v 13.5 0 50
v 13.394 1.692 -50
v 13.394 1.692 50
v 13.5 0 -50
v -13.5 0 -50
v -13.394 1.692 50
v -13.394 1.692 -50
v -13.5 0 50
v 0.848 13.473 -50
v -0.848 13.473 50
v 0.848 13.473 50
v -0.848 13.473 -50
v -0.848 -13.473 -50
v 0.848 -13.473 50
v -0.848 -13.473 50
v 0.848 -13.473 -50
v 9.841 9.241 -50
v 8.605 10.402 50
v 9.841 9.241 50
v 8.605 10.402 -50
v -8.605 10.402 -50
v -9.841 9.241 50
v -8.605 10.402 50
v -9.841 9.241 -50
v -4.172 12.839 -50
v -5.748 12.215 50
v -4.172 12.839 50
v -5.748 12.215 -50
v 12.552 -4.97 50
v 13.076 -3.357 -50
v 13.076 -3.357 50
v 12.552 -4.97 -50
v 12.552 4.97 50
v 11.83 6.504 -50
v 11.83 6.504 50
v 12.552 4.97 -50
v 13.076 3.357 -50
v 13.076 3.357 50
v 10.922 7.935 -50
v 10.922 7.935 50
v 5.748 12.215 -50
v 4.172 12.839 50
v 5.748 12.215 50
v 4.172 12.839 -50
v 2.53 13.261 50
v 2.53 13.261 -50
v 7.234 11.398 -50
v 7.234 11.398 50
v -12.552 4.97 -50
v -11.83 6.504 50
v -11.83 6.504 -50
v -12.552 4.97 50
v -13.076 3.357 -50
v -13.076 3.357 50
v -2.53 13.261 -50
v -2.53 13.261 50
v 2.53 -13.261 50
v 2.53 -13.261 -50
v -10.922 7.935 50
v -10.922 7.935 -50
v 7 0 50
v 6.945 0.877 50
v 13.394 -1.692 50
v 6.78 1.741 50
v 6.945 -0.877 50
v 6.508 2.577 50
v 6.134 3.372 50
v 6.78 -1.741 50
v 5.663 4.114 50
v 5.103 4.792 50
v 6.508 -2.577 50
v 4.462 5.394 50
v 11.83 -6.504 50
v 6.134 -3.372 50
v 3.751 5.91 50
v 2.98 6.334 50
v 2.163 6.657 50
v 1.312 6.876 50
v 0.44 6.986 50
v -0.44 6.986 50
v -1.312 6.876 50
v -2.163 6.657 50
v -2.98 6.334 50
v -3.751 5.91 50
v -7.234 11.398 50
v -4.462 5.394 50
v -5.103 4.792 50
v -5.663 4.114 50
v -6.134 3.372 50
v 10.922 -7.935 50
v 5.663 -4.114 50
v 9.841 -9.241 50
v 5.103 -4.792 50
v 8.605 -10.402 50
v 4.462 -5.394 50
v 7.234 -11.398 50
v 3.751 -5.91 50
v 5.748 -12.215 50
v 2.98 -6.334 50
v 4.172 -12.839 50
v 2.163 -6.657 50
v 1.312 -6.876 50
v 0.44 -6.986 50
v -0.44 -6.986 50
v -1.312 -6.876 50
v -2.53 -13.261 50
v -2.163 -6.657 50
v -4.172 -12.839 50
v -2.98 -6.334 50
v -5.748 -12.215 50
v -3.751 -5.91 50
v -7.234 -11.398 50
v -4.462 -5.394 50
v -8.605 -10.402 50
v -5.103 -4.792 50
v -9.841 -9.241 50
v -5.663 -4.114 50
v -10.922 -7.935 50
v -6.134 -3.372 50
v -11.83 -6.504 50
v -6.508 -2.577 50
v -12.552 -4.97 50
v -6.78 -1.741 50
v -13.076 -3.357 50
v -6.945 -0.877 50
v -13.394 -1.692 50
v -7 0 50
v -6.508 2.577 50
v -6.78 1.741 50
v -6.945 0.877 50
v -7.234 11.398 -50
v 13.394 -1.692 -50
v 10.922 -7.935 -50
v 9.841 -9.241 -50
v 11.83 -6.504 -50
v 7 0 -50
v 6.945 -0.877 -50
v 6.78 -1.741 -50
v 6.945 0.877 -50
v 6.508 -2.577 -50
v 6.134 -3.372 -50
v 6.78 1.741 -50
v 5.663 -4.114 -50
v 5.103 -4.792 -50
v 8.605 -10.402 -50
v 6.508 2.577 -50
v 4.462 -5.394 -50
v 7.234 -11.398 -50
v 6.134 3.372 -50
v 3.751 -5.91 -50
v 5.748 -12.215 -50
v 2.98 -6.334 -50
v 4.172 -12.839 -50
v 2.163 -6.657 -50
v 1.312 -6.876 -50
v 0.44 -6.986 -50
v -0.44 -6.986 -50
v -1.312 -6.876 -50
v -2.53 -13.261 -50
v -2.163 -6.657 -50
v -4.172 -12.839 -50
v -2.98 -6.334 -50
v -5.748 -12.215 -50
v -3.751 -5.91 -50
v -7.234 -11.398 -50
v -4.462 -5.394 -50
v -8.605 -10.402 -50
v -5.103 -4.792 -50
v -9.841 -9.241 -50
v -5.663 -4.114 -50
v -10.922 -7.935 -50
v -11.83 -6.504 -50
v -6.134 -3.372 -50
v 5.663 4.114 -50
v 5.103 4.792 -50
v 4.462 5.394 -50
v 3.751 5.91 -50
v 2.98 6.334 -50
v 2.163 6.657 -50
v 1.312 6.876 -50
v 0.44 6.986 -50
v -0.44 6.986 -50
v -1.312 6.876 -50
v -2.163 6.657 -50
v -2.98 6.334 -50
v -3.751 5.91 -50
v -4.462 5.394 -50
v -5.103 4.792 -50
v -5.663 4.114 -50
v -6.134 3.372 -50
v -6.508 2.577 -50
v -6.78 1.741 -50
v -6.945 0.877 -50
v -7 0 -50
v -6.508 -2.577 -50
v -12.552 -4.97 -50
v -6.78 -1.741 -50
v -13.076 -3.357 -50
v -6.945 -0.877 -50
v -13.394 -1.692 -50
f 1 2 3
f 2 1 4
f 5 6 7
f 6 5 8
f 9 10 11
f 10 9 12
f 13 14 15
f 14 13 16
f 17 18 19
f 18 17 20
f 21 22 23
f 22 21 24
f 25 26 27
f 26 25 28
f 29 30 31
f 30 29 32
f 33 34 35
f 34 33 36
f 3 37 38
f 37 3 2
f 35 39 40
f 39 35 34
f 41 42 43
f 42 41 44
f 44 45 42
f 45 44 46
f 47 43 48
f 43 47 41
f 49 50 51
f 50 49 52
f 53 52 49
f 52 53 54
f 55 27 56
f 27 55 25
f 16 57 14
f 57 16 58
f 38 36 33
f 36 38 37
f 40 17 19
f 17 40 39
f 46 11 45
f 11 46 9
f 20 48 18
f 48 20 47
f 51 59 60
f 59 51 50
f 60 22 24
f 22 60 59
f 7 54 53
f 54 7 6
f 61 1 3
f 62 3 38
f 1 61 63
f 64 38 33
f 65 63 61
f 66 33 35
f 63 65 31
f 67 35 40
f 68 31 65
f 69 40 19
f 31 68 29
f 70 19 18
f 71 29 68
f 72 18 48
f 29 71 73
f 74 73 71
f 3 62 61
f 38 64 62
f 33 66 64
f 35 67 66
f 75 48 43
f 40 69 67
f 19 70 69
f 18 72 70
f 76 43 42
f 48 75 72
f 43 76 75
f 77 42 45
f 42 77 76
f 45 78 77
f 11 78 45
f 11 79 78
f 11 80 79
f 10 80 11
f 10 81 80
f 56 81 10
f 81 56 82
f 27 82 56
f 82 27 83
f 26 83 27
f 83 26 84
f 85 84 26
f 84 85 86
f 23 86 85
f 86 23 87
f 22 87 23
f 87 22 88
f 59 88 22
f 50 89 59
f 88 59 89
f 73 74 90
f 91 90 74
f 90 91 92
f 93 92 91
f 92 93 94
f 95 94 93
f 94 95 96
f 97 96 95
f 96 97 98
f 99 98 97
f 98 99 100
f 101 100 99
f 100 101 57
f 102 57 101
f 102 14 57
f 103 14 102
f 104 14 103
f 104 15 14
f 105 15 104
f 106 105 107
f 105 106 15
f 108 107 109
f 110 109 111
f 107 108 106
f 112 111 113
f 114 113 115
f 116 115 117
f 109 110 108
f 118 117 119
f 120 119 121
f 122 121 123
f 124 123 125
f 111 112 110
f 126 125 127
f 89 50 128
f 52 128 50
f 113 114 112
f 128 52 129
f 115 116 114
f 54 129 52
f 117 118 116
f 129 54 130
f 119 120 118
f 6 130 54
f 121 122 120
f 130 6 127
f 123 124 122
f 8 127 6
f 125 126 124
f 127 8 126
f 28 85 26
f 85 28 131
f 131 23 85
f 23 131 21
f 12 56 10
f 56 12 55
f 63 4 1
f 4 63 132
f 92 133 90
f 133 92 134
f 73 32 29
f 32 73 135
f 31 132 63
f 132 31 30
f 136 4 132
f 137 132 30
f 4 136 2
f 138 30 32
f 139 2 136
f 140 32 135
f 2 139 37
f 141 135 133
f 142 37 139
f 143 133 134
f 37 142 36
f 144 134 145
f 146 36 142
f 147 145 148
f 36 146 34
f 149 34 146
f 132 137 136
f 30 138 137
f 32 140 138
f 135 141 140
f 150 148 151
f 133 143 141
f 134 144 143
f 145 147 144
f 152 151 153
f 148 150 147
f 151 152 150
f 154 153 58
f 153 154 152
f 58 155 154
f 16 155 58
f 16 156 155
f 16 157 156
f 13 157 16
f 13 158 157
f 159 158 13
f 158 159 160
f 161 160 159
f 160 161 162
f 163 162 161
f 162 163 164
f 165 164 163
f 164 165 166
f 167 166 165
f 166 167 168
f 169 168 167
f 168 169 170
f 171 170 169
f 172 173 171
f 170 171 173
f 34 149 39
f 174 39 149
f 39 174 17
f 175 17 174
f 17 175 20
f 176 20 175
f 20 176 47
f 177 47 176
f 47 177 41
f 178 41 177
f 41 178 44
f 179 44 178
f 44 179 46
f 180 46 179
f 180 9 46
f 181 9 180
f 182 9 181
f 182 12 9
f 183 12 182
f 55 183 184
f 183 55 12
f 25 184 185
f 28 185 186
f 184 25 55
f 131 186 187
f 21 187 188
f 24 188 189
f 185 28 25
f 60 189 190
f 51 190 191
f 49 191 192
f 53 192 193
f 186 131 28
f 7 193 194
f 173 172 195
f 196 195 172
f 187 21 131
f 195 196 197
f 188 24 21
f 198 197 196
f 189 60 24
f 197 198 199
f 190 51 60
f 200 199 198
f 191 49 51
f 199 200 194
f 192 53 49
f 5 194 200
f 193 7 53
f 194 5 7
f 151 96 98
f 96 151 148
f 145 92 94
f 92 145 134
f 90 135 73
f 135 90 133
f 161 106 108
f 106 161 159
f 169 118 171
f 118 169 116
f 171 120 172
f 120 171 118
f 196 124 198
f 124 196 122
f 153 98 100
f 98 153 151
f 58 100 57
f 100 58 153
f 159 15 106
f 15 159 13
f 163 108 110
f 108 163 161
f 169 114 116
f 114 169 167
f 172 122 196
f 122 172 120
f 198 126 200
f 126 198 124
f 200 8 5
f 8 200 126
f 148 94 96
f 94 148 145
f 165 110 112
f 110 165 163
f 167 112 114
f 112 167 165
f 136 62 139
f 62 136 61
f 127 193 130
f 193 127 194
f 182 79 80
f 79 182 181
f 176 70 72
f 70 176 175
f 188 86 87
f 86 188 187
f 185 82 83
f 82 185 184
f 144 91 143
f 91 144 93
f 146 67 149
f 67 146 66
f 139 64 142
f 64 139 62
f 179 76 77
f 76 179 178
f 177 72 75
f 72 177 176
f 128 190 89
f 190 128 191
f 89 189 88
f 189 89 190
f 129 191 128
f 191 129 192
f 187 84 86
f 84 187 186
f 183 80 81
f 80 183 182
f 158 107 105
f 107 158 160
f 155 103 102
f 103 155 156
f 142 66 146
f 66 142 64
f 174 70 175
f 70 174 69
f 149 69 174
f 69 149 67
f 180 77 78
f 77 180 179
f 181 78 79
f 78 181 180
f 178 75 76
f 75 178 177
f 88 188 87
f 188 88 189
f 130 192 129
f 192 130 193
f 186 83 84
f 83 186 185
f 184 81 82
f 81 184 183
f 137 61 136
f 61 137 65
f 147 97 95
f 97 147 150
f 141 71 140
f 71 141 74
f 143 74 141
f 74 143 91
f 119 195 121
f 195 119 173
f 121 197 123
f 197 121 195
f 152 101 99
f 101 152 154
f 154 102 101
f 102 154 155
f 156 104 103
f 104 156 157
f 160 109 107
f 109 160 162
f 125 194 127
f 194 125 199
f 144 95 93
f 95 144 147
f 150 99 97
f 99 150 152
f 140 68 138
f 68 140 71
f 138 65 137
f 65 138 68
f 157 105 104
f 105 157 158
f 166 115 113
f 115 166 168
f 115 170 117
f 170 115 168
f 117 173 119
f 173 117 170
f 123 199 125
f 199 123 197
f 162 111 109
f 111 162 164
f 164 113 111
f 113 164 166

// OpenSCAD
$fn = 50;


difference() {
	union() {
		translate(v = [0, 0, -50.0000000000]) {
			cylinder(h = 100, r = 13.5000000000);
		}
	}
	union() {
		translate(v = [0, 0, -100.0000000000]) {
			cylinder(h = 200, r = 7);
		}
	}
}
